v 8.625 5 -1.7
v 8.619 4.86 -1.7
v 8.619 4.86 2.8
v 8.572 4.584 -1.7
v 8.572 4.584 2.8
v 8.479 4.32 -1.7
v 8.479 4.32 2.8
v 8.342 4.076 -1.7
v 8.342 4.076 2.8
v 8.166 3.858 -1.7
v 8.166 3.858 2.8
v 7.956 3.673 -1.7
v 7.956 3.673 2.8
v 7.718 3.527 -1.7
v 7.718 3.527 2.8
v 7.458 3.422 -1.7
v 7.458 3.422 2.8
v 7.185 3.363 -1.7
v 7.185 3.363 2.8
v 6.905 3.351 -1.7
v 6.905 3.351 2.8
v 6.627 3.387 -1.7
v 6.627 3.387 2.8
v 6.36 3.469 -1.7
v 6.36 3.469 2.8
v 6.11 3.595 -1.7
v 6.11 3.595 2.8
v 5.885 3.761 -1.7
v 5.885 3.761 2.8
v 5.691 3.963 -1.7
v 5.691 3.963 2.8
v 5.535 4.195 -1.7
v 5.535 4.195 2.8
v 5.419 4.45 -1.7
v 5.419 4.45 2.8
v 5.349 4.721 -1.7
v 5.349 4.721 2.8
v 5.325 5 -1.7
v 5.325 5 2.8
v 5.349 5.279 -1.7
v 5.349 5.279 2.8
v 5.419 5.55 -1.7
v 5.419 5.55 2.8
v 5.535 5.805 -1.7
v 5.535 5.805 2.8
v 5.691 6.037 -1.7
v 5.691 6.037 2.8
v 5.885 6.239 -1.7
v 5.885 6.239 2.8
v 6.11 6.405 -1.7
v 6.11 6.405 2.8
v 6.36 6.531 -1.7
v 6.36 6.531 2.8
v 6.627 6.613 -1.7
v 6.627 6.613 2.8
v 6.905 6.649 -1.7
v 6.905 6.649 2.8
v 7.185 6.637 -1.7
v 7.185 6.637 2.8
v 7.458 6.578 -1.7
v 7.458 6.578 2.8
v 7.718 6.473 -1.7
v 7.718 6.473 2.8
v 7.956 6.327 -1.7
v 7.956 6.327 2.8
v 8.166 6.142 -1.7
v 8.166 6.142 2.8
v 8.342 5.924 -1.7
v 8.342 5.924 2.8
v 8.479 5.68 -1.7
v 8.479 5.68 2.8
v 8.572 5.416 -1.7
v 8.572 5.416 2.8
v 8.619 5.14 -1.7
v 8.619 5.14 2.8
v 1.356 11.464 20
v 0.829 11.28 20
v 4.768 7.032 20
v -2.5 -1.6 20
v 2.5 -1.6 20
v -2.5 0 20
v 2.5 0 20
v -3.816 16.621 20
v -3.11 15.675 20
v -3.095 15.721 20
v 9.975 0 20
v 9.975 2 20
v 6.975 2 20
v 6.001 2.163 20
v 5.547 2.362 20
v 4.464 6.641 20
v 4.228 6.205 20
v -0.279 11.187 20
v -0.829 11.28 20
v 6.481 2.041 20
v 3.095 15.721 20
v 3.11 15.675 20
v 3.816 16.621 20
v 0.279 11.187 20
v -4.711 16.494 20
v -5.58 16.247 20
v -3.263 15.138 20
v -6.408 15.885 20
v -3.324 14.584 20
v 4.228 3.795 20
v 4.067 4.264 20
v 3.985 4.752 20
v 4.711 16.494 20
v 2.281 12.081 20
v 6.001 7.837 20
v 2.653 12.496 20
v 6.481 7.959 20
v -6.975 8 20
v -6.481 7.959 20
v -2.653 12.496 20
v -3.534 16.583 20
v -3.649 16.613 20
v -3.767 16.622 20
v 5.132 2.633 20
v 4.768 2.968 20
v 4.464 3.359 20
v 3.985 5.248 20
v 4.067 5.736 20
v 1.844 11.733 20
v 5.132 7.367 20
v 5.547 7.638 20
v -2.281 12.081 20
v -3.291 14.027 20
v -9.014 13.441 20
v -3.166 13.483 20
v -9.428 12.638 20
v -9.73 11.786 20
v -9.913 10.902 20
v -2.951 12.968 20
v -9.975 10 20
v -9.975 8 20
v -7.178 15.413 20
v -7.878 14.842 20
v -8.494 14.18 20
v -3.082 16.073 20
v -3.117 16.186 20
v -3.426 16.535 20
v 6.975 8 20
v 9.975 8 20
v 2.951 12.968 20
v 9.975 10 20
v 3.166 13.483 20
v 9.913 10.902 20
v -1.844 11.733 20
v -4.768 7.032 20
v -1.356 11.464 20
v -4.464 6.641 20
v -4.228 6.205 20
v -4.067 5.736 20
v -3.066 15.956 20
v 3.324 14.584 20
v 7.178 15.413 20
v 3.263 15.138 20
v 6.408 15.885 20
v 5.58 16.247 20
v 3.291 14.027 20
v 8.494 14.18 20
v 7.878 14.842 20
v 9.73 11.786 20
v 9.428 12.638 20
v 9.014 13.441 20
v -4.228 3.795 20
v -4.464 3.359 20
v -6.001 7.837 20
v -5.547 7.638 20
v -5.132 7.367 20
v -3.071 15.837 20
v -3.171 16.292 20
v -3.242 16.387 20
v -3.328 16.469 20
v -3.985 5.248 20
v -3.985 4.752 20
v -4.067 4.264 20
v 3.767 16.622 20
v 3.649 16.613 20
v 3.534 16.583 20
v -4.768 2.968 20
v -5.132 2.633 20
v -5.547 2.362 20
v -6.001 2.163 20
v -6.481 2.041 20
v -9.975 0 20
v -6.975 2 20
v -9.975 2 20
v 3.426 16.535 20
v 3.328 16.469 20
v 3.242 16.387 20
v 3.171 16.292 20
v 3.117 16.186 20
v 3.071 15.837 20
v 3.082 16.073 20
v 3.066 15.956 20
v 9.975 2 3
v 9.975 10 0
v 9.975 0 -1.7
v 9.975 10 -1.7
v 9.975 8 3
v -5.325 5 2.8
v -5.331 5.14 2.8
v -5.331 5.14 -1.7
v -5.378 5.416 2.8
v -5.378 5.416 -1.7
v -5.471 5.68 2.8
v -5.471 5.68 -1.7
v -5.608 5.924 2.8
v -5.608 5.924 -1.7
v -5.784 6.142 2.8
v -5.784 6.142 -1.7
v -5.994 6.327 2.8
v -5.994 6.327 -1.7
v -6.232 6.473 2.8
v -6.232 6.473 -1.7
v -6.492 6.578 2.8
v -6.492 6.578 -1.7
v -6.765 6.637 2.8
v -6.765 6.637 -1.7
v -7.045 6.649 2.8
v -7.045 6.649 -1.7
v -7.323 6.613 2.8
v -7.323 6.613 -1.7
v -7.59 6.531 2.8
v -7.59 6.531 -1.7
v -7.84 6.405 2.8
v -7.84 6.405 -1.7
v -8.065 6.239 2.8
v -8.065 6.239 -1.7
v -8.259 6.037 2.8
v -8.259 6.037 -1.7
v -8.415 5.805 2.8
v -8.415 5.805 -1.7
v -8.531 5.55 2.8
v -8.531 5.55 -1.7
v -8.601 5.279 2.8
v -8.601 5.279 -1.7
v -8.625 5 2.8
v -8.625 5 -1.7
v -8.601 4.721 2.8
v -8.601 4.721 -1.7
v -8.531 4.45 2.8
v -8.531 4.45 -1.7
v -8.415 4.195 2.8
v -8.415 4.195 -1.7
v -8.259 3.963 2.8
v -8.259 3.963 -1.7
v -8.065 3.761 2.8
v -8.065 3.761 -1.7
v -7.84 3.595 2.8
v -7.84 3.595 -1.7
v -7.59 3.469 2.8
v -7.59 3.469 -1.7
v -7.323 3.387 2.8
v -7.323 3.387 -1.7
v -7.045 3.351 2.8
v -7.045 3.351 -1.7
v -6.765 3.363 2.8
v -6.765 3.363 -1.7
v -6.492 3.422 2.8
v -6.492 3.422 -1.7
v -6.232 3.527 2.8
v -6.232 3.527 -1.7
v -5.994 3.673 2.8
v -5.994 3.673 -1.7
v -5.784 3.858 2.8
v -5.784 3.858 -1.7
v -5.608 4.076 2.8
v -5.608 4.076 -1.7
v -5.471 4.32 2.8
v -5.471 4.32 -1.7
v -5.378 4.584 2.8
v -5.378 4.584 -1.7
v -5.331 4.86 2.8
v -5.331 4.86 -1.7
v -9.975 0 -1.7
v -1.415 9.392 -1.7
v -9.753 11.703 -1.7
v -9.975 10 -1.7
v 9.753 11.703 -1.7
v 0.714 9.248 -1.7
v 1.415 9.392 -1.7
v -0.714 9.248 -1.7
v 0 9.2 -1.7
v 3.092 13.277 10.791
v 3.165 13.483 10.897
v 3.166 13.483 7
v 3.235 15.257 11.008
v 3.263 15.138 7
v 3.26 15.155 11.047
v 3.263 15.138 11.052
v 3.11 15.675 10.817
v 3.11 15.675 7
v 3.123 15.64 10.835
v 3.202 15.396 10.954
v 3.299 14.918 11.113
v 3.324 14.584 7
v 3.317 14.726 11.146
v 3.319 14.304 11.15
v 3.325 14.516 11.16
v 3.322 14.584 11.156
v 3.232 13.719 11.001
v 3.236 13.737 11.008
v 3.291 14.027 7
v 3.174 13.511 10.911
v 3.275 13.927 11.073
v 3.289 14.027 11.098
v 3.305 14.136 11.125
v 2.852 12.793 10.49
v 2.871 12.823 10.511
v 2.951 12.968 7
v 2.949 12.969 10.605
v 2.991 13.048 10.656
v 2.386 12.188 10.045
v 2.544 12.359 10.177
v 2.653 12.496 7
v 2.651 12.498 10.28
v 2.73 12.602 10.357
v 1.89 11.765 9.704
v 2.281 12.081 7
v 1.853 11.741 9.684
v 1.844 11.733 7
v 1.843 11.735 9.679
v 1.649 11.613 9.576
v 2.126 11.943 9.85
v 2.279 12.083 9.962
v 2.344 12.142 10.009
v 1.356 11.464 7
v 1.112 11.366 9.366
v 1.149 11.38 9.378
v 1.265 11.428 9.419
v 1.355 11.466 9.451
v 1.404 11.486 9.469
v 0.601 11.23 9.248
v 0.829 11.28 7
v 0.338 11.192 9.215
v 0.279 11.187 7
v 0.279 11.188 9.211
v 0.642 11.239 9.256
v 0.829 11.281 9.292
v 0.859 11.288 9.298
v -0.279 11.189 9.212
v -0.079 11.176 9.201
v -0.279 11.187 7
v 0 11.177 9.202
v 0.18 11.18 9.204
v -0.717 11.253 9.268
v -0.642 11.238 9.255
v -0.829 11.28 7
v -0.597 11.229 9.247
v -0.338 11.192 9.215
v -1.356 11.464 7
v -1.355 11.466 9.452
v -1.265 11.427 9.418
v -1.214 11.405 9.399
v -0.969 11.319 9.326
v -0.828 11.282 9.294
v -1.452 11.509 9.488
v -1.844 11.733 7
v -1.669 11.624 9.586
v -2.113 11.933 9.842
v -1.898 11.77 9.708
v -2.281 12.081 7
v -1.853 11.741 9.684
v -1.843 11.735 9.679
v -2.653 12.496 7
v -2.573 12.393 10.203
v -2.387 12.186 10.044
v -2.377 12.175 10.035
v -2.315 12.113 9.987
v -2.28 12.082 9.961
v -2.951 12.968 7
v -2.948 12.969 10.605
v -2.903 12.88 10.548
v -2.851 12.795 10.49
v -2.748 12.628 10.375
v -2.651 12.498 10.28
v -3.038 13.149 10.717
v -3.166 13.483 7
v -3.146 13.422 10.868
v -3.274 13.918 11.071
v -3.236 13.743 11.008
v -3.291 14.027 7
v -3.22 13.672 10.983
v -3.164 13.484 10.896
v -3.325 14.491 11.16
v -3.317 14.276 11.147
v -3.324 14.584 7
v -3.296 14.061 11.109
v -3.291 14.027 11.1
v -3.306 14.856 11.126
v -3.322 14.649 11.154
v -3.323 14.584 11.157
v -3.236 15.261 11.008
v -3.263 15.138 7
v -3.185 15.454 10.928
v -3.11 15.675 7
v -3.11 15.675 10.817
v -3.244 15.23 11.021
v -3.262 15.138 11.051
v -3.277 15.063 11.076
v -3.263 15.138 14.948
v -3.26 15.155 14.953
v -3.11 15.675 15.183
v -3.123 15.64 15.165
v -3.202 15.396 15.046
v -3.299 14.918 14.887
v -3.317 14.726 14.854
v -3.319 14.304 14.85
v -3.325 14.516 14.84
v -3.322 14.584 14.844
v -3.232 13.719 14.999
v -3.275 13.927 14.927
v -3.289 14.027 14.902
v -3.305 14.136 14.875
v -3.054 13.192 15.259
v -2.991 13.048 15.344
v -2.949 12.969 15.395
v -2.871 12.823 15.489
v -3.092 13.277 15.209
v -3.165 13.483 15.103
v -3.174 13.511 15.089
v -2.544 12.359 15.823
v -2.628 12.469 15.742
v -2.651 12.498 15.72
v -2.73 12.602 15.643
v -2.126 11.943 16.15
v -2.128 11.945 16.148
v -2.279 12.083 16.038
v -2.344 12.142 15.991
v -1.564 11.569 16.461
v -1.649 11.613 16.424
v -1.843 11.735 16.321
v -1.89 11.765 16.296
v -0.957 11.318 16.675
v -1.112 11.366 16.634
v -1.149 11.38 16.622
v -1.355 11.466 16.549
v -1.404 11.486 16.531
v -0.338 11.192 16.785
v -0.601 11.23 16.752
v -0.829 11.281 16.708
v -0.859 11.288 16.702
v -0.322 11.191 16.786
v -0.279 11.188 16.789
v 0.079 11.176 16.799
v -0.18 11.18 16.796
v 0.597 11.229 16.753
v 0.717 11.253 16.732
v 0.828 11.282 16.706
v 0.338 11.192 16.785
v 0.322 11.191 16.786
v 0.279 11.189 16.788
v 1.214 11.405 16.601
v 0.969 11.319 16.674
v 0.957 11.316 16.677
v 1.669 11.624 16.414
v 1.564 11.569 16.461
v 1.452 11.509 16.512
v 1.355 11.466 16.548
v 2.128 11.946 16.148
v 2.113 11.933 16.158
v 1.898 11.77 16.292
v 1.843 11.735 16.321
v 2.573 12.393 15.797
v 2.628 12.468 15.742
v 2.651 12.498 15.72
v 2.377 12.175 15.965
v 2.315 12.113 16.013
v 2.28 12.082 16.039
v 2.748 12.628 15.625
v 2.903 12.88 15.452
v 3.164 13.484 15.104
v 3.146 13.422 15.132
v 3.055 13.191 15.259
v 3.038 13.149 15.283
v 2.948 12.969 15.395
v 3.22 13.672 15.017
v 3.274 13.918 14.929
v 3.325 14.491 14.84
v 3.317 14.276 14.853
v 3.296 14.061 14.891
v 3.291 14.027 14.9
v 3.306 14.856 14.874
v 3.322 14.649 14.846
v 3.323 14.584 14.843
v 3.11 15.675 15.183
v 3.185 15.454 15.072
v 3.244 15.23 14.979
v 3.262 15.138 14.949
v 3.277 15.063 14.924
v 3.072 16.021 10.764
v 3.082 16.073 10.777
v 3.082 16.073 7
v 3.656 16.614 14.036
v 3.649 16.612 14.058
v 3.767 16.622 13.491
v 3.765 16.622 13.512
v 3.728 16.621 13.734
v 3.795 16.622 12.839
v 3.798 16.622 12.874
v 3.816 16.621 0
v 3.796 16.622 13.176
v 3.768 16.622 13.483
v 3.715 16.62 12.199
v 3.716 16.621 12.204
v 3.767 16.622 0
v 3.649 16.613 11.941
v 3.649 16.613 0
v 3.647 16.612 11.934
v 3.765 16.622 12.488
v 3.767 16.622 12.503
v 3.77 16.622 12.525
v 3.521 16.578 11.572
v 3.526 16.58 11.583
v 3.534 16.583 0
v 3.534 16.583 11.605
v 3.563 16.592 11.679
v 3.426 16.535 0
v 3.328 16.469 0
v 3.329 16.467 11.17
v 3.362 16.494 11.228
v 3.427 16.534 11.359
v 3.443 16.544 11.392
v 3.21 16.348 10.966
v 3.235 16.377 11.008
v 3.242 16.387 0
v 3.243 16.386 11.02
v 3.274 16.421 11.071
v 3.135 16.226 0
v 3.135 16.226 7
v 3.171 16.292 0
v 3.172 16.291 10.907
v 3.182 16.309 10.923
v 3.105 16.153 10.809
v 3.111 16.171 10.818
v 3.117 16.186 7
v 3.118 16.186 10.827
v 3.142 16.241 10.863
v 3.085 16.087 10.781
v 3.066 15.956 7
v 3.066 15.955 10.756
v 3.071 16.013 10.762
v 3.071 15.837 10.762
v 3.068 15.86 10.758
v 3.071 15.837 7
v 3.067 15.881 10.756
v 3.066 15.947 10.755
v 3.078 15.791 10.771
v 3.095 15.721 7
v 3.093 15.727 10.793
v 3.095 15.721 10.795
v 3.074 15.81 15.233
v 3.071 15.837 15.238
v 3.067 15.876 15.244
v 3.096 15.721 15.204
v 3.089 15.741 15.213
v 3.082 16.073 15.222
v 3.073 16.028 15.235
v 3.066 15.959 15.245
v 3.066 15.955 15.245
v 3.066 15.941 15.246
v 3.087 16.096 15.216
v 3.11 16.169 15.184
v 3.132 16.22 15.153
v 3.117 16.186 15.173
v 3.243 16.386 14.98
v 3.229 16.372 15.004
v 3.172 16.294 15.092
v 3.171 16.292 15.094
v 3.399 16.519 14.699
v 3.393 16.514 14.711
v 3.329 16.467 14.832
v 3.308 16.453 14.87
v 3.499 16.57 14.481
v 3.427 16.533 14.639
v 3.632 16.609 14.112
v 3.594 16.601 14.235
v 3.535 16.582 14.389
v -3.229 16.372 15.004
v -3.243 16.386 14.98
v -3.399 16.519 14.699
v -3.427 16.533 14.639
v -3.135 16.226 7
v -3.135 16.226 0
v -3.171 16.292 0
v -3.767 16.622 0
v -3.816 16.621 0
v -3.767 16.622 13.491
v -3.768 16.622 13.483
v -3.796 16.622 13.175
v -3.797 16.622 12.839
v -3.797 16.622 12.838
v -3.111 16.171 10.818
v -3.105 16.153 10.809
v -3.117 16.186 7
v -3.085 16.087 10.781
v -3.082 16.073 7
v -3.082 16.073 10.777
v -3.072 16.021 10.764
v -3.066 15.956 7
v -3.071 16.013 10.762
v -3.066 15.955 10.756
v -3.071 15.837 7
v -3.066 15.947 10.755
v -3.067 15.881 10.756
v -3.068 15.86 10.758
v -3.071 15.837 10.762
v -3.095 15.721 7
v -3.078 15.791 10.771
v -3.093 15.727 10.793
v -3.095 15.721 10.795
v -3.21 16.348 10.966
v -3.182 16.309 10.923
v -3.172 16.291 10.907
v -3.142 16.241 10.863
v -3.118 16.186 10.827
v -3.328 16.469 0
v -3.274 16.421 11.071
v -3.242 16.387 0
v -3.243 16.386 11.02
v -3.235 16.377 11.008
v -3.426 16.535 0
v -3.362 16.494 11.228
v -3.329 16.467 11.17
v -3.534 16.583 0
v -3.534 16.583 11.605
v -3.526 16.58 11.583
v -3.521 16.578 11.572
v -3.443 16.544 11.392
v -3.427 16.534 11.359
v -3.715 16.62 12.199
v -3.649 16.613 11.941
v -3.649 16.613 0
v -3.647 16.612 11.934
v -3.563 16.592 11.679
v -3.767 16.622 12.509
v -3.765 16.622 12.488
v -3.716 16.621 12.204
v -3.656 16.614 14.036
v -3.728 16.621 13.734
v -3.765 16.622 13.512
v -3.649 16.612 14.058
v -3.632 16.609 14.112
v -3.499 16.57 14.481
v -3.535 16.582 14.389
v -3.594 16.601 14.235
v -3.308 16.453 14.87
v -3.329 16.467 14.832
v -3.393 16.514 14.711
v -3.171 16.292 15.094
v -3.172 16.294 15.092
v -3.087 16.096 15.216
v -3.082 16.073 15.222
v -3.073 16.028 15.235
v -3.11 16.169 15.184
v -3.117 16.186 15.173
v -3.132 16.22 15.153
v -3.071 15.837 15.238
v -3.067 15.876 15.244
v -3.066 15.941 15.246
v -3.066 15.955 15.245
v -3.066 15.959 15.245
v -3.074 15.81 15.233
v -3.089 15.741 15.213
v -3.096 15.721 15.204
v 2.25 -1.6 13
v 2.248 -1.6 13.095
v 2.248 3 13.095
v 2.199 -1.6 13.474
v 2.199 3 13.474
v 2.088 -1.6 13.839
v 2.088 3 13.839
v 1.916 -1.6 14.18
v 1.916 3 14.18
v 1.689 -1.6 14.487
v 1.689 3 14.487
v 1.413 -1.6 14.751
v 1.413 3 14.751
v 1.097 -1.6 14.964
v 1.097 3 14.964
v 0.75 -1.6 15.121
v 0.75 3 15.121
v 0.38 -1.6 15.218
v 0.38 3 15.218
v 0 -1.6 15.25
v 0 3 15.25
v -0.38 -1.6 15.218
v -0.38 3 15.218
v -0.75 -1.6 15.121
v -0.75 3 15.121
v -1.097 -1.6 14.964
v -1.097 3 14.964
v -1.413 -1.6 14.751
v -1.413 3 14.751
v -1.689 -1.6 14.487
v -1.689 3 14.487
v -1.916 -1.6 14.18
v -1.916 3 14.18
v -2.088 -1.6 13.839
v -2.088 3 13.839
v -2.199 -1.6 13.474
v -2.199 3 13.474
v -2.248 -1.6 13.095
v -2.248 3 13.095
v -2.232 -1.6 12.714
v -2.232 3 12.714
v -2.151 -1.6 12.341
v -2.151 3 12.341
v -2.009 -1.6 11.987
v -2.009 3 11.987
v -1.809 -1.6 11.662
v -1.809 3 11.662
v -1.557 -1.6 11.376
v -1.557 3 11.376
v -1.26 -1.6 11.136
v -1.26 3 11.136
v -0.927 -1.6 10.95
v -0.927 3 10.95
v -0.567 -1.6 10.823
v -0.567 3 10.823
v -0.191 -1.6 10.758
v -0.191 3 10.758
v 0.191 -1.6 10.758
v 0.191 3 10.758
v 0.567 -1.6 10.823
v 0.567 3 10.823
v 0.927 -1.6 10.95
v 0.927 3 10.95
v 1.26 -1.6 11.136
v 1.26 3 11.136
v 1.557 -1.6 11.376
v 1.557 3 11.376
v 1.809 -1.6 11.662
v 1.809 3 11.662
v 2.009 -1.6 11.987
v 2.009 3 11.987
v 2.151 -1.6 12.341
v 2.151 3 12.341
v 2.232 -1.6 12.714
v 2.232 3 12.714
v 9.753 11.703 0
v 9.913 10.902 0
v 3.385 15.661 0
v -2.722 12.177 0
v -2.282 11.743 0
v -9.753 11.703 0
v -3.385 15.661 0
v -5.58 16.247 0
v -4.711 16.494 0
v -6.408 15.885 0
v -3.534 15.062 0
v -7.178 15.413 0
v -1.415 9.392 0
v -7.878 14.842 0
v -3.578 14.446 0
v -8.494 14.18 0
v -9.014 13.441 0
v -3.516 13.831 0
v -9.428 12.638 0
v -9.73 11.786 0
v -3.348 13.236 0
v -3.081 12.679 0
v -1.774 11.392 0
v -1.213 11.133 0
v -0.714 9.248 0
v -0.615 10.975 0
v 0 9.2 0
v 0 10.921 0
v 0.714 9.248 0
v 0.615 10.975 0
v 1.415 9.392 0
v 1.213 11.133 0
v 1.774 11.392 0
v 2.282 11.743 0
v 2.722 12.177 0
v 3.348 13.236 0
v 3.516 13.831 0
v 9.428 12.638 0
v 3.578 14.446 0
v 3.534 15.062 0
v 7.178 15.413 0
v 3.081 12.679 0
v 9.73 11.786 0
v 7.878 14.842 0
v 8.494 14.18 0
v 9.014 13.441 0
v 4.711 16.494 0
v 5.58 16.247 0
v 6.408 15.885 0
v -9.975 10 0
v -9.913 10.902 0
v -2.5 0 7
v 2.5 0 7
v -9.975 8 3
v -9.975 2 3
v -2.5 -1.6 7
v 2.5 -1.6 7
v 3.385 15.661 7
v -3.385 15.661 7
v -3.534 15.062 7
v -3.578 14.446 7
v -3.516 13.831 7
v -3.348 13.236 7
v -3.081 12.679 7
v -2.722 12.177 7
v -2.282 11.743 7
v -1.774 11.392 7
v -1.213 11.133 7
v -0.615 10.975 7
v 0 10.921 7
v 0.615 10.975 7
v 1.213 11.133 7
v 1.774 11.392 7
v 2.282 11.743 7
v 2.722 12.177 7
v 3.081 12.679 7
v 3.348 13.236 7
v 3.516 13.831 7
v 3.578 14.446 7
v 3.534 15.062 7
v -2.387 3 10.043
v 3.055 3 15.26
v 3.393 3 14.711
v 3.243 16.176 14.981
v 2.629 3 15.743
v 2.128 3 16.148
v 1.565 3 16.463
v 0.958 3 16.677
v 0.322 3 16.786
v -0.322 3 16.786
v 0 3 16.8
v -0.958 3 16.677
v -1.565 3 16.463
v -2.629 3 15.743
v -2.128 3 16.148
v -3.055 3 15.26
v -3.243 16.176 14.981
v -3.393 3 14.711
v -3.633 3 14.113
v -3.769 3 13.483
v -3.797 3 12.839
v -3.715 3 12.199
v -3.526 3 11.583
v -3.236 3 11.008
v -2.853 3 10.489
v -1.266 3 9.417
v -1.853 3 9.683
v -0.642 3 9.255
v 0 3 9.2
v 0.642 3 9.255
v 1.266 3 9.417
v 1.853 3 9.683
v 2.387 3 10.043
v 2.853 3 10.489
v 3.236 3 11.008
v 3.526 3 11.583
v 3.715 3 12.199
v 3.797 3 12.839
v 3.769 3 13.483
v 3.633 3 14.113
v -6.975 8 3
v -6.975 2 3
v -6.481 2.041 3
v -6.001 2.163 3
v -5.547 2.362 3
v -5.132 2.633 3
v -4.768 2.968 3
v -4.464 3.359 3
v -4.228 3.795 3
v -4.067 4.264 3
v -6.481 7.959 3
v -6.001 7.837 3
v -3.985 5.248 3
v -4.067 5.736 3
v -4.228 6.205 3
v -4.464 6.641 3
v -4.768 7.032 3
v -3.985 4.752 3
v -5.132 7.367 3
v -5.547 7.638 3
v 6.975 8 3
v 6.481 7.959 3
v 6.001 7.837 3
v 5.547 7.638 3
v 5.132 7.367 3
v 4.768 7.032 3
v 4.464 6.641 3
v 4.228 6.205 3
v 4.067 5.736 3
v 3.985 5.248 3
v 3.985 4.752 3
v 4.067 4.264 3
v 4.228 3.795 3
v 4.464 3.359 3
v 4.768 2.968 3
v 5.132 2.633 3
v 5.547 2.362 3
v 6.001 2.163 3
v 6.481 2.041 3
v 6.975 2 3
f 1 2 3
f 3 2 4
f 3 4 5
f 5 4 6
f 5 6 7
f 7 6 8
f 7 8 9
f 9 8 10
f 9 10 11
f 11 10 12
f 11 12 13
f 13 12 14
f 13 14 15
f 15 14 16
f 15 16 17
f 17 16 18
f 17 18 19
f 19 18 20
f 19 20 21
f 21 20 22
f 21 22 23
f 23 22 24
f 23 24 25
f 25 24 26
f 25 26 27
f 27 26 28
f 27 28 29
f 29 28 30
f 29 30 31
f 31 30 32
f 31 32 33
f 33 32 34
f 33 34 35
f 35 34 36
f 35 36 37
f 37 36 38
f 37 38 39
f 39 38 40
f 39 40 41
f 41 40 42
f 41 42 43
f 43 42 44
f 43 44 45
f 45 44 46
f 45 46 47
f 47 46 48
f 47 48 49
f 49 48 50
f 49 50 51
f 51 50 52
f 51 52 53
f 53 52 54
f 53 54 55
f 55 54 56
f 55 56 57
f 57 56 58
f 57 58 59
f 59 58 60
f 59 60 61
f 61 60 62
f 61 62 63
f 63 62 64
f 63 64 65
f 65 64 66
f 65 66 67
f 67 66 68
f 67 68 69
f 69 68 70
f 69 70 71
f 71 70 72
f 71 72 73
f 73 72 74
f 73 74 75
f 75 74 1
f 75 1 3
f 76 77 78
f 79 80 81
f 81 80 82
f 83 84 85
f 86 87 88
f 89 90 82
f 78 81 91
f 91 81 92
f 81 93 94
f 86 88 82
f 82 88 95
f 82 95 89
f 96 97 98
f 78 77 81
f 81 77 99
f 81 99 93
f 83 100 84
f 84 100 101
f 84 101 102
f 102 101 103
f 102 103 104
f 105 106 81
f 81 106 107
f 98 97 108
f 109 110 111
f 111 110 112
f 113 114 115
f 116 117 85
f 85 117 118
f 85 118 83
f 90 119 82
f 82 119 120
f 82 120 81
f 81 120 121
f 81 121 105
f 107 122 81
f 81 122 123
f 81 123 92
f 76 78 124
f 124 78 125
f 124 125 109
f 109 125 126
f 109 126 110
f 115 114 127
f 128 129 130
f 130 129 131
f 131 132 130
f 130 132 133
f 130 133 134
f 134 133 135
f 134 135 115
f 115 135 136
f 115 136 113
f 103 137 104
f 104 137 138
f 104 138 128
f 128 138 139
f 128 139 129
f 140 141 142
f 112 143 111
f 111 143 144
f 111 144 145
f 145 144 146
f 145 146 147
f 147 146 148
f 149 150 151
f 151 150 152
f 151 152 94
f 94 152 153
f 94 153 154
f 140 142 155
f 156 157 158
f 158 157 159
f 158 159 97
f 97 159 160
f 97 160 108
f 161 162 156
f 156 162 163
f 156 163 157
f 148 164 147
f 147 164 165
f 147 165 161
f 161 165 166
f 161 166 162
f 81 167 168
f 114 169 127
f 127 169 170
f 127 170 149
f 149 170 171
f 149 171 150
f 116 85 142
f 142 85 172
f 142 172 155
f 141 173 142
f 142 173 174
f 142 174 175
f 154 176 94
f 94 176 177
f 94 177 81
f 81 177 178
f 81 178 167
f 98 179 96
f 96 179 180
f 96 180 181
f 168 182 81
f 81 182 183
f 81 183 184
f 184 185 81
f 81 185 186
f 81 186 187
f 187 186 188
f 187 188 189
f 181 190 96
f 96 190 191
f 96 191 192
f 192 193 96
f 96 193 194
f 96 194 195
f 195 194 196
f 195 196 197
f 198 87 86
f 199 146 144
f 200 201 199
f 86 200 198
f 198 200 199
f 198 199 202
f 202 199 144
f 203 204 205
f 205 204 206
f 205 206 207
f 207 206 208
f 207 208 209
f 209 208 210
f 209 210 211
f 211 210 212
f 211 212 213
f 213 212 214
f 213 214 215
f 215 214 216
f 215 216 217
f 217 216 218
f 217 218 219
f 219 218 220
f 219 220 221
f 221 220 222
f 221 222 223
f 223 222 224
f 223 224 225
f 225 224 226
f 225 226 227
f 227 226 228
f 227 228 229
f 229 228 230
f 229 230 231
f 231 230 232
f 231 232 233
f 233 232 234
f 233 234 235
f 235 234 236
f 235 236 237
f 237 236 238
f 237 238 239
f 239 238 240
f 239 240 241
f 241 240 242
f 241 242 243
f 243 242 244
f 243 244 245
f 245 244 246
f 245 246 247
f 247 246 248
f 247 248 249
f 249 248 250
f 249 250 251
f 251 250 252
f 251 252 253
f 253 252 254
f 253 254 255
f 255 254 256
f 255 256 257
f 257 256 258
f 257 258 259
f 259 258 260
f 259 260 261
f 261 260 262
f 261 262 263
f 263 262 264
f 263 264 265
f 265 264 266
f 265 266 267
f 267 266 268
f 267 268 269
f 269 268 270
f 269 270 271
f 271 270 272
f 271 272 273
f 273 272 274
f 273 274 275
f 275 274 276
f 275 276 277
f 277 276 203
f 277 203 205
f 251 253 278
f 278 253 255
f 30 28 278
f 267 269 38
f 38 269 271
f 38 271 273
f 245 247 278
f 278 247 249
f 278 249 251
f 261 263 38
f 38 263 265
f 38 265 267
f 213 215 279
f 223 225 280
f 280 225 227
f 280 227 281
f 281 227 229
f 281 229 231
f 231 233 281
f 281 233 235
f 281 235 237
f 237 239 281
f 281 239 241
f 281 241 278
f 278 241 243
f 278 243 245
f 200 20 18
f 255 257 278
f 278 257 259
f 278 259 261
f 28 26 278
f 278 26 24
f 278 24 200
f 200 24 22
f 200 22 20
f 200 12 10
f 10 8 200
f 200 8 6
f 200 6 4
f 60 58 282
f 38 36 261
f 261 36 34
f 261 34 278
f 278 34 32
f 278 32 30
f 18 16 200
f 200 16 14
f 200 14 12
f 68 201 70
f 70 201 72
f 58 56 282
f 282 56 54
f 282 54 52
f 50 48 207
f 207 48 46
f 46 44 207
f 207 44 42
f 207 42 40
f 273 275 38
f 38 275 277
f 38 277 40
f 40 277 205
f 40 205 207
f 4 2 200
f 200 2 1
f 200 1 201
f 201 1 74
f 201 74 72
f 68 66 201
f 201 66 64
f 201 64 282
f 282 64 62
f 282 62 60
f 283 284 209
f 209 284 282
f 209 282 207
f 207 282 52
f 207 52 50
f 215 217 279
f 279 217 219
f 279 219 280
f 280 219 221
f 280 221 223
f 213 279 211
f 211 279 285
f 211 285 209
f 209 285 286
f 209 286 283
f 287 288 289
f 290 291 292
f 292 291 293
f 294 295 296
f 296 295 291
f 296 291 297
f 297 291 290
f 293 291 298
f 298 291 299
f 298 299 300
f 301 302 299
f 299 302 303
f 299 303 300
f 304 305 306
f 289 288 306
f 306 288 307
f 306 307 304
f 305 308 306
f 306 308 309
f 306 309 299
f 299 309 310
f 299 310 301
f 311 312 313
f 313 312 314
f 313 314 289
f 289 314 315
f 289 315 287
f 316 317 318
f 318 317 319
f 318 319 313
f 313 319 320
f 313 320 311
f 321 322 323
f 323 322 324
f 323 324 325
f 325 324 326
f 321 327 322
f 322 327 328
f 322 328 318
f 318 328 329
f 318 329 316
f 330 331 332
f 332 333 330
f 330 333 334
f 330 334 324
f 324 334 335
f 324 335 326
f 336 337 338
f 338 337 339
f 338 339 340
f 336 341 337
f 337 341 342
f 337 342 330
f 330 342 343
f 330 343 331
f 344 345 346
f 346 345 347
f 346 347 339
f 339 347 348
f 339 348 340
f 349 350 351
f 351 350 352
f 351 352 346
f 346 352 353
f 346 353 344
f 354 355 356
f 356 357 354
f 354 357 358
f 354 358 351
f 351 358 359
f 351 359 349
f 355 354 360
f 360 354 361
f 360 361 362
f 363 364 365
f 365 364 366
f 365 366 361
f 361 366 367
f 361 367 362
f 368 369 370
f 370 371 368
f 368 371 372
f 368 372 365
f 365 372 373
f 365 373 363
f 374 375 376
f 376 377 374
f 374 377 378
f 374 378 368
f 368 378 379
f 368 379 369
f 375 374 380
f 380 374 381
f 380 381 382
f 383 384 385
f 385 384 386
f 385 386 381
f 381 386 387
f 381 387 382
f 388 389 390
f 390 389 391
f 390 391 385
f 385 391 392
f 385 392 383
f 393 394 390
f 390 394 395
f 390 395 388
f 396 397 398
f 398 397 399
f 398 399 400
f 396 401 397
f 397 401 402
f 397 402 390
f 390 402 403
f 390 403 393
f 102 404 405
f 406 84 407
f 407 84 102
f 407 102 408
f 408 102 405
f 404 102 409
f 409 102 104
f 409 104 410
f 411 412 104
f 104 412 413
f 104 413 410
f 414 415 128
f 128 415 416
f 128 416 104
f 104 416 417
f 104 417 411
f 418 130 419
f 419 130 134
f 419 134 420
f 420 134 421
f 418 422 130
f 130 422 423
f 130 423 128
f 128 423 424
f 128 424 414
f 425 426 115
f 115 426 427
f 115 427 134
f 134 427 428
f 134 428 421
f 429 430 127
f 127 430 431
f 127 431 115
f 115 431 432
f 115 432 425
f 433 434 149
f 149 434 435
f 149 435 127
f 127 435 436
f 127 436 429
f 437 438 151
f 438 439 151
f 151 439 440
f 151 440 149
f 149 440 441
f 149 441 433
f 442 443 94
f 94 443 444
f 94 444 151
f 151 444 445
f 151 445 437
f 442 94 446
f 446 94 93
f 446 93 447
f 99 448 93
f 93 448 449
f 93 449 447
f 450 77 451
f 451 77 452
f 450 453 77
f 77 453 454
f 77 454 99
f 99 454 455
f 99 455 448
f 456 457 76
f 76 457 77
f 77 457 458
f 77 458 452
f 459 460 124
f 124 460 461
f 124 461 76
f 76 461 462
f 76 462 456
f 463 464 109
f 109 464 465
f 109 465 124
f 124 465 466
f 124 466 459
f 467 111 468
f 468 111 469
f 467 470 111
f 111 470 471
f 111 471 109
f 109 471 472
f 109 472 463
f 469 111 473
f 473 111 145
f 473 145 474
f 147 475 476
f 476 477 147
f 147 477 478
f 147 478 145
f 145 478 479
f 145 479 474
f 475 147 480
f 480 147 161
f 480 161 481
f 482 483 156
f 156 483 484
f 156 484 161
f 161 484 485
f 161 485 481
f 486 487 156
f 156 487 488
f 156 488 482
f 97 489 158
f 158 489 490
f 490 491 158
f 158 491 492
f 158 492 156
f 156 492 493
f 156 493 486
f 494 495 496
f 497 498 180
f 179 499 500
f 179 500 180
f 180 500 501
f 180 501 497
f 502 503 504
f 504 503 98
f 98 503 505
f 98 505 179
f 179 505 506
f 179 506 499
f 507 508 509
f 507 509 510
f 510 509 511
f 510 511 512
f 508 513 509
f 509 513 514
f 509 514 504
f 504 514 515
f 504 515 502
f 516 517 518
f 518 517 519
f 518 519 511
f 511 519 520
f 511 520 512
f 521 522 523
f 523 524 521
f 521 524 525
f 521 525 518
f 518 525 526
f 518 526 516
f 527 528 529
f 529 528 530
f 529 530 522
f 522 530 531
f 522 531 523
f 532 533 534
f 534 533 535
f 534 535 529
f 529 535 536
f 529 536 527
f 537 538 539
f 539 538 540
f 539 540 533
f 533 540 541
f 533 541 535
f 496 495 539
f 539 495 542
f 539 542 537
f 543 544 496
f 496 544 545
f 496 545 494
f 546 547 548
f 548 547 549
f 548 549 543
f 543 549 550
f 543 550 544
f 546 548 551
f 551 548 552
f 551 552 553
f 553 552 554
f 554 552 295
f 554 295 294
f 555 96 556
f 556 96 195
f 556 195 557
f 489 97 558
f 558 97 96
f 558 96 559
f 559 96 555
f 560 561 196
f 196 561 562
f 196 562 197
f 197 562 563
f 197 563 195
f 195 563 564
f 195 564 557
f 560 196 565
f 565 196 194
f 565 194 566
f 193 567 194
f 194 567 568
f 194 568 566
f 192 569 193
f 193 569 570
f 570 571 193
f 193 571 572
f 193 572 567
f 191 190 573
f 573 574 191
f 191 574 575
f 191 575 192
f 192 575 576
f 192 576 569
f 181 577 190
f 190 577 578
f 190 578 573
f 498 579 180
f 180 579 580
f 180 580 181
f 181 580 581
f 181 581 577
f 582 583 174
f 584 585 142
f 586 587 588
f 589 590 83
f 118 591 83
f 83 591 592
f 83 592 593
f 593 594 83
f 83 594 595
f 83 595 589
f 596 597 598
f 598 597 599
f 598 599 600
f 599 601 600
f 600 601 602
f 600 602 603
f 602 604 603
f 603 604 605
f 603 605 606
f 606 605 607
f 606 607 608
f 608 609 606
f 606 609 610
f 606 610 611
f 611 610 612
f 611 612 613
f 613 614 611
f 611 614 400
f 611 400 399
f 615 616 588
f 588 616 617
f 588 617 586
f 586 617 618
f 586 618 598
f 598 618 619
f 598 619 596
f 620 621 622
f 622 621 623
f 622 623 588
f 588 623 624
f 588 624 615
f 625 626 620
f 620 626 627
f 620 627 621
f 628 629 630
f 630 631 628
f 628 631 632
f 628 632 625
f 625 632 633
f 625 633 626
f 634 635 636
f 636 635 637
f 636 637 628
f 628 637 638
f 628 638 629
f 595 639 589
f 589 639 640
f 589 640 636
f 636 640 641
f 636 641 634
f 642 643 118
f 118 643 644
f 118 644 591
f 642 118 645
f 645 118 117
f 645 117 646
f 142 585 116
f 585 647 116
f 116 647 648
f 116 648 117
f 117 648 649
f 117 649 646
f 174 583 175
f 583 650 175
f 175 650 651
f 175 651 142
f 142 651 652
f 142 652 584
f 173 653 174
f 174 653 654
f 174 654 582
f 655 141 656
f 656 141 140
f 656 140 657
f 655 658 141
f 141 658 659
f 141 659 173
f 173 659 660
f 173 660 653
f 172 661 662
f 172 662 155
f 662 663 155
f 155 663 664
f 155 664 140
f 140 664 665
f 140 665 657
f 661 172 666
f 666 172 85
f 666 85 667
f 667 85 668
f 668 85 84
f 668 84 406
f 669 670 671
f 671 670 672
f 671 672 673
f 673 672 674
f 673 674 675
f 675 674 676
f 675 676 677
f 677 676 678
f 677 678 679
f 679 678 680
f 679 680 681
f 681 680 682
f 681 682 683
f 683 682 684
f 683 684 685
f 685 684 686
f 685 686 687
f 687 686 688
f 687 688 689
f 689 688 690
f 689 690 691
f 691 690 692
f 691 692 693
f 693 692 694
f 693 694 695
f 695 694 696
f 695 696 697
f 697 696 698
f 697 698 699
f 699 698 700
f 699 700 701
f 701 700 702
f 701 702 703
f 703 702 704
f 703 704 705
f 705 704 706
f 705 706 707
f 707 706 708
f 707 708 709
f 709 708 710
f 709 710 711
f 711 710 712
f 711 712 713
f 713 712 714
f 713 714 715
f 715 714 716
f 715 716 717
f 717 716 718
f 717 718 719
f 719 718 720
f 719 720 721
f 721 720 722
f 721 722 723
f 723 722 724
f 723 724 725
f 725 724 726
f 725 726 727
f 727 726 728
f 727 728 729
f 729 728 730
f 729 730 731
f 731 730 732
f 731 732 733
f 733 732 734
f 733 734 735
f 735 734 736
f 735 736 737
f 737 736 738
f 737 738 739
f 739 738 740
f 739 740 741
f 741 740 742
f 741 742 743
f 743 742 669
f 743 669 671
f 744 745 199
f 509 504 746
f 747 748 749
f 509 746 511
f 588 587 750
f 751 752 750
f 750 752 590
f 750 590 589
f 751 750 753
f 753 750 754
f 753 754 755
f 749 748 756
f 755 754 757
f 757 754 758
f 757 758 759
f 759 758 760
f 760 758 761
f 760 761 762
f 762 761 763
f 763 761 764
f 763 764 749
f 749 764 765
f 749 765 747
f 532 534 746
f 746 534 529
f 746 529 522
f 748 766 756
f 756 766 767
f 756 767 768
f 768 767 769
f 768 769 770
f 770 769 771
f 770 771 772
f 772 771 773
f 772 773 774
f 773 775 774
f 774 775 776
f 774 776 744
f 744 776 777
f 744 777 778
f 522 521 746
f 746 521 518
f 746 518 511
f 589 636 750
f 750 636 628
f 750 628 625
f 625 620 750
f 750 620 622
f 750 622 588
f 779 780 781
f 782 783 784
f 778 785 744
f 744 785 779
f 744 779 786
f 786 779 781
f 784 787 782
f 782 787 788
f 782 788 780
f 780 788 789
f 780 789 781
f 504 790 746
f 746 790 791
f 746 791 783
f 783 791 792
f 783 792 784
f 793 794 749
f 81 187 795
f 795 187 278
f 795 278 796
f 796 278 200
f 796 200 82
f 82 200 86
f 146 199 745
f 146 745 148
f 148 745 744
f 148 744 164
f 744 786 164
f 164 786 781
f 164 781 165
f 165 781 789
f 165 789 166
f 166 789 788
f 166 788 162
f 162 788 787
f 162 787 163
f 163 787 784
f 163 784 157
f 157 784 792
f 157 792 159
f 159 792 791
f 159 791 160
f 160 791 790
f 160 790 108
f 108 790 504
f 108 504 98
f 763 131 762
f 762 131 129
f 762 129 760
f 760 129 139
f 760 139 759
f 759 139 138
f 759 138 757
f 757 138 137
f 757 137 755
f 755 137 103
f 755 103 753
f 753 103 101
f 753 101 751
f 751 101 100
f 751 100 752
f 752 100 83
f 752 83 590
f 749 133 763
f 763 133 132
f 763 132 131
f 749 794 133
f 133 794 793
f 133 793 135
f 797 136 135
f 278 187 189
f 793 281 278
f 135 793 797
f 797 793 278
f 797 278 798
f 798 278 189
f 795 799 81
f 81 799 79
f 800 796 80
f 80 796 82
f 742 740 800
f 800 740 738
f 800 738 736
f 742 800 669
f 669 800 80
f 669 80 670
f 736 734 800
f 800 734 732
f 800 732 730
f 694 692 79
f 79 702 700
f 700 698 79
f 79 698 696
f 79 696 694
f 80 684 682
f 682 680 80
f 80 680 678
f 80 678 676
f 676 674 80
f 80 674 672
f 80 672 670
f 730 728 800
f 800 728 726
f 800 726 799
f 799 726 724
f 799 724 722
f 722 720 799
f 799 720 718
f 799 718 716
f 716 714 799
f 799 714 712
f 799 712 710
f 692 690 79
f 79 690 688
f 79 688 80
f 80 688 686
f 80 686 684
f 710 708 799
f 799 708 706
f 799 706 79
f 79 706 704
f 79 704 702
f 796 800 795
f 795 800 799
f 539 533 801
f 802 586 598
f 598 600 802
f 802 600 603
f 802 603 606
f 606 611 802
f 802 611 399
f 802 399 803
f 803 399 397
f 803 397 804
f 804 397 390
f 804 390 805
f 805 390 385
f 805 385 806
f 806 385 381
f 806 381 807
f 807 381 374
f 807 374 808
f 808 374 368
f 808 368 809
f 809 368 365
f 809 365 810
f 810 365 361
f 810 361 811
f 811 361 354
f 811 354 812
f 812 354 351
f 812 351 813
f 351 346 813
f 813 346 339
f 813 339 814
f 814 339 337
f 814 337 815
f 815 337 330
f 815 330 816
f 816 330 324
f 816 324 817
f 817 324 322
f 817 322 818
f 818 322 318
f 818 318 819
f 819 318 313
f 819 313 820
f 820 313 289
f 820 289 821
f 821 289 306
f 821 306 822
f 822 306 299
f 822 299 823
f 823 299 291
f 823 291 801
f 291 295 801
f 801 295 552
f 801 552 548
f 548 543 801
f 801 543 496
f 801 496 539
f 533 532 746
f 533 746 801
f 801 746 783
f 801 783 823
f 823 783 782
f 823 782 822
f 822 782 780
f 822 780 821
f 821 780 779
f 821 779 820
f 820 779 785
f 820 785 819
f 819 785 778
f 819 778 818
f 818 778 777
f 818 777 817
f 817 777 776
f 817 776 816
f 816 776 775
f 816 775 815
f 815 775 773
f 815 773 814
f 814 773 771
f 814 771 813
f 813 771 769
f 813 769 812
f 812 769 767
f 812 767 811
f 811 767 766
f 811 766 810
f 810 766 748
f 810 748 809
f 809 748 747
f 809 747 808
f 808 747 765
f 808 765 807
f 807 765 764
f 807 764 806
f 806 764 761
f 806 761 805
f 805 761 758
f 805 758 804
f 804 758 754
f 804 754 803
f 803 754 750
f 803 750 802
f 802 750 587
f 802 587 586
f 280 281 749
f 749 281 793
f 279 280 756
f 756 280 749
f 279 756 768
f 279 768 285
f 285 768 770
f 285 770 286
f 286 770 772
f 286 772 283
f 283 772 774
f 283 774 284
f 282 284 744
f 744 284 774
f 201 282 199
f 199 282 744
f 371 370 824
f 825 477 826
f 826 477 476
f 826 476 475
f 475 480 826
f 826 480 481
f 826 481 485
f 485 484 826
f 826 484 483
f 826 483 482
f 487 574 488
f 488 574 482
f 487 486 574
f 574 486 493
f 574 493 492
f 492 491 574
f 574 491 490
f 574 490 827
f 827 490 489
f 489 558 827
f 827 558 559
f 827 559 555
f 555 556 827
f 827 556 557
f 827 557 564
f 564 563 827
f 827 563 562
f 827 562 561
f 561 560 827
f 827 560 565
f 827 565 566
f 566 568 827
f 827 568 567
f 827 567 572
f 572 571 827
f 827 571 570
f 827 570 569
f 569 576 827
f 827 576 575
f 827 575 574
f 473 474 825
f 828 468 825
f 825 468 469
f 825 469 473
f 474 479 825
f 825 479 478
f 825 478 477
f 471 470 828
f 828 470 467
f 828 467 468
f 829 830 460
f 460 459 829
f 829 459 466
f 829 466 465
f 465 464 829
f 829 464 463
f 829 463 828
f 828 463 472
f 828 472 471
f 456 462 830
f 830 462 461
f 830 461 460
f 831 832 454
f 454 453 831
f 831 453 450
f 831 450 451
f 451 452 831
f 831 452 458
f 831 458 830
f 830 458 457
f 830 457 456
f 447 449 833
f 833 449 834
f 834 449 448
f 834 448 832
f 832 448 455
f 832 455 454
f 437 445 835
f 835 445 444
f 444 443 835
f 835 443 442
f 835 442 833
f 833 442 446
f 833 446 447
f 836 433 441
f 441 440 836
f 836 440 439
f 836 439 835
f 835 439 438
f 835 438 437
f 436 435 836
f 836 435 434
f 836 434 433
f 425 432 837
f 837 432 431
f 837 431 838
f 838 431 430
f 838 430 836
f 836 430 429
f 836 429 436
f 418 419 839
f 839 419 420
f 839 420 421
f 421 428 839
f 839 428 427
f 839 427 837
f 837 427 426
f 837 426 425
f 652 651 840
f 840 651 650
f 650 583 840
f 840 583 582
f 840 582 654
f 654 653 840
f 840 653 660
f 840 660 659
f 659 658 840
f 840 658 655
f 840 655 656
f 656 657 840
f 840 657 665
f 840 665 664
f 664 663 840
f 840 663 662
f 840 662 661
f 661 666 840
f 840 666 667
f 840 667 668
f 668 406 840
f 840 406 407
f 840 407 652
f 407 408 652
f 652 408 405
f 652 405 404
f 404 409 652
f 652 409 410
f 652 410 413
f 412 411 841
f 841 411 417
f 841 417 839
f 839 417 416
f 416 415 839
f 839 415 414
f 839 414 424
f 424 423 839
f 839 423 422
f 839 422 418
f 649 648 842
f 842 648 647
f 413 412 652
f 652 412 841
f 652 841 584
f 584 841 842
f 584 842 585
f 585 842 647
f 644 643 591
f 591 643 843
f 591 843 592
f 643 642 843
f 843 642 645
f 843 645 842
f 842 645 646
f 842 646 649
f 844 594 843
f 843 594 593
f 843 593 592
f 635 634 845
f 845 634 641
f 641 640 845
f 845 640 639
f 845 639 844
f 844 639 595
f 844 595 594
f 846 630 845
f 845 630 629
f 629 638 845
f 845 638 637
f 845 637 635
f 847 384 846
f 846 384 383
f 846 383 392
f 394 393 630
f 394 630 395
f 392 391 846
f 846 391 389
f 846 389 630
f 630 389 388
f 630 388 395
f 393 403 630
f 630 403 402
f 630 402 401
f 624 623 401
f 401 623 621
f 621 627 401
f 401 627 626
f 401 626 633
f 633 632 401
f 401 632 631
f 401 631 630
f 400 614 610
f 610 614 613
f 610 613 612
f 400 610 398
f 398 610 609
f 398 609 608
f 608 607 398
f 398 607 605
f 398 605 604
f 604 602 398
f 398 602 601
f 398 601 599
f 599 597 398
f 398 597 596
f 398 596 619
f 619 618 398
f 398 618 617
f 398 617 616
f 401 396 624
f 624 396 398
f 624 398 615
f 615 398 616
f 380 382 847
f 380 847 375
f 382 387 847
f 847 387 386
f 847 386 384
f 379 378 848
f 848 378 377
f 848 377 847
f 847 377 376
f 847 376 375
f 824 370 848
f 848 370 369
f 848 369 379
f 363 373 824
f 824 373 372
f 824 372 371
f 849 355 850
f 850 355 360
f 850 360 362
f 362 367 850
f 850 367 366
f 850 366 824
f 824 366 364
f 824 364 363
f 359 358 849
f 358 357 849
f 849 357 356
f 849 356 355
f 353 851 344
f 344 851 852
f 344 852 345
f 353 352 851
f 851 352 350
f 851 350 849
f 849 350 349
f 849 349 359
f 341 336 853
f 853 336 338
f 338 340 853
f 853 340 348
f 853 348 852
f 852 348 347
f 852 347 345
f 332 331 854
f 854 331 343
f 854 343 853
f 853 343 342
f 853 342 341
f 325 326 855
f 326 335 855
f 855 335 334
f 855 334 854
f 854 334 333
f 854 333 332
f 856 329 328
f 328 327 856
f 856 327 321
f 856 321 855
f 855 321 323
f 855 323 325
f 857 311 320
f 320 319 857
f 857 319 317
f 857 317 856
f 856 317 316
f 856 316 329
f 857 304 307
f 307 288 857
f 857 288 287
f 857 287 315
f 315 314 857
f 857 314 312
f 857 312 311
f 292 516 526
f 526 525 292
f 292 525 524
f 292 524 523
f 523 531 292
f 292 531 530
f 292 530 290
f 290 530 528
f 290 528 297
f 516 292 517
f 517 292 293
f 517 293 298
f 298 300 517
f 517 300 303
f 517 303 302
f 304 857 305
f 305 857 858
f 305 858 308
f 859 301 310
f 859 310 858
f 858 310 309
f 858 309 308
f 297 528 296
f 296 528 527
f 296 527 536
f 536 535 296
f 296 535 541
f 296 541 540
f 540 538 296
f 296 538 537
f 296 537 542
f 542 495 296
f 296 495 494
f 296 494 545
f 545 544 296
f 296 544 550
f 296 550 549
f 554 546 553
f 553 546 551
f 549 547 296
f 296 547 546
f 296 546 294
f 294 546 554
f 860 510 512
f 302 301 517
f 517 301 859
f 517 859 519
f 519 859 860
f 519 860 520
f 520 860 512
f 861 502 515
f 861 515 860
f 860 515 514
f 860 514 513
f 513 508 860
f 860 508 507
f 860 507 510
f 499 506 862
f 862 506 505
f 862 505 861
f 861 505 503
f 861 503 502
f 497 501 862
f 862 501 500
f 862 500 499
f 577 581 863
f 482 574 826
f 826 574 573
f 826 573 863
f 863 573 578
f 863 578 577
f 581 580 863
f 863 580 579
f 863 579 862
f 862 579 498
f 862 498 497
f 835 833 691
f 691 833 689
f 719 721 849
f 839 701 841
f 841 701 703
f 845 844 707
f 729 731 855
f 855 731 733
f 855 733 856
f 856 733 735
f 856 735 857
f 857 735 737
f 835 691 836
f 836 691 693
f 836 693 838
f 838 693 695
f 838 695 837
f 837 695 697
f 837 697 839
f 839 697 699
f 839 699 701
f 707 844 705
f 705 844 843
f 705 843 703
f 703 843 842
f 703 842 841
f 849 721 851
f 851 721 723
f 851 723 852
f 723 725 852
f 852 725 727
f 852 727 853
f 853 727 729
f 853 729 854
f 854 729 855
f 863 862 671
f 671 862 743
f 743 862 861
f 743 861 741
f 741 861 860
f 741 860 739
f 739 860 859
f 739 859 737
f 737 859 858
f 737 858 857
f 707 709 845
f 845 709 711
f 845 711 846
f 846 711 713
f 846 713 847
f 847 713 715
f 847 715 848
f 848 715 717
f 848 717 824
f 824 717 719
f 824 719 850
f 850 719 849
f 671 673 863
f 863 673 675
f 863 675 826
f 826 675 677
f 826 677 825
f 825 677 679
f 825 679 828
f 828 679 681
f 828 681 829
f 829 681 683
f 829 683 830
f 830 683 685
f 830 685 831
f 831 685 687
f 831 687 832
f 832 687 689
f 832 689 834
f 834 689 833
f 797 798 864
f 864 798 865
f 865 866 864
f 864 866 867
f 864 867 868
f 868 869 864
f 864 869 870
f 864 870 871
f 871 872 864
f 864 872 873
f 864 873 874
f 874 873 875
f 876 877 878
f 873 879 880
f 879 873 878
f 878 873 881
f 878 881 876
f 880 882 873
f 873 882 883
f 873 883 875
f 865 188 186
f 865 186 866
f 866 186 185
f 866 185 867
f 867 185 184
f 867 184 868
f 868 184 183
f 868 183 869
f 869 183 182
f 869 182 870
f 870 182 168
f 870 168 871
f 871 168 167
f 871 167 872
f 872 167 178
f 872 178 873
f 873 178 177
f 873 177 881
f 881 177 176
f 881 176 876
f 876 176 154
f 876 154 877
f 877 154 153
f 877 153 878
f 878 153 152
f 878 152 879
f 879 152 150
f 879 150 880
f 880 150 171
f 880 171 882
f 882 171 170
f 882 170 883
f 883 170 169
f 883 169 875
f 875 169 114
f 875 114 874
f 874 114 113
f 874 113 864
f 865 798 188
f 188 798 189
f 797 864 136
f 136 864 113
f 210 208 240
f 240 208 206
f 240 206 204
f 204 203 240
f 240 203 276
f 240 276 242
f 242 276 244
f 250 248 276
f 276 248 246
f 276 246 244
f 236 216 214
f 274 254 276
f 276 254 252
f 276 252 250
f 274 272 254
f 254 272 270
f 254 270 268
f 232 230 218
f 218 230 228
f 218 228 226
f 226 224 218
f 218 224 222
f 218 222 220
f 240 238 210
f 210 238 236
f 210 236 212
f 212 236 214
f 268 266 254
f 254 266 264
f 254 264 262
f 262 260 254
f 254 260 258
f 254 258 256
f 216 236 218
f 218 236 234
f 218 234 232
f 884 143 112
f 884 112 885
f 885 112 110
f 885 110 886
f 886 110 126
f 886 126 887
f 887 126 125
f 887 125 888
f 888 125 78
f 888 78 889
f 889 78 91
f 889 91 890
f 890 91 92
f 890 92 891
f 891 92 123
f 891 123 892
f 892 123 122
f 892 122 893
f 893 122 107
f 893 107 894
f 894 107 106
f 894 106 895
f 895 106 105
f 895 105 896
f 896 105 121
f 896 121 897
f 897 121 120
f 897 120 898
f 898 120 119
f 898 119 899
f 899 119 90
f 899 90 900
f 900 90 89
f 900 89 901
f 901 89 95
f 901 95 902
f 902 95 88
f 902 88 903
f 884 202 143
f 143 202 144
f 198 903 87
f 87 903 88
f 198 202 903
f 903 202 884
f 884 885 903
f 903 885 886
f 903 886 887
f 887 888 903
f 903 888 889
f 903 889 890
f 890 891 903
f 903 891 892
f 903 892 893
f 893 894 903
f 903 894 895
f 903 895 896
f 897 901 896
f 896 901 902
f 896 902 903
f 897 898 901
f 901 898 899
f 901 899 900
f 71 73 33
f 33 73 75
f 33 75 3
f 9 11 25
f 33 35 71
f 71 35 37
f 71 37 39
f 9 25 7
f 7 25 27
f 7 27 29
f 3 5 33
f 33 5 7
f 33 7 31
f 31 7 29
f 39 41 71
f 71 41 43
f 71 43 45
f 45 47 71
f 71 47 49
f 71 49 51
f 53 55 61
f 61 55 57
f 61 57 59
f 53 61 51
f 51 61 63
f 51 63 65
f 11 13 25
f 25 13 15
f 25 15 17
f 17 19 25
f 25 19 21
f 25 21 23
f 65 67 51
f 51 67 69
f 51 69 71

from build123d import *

# Parameters (mm, degrees)
BOSS_EXTRUDE1_DEPTH = 20
SKETCH2_W           = 5
SKETCH2_H           = 1.6
BOSS_EXTRUDE2_DEPTH = 13
SKETCH3_R           = 3.578569403
CUT_EXTRUDE1_DEPTH  = 7
BOSS_EXTRUDE3_DEPTH = 1.7
CUT_EXTRUDE2_START  = 20
SKETCH6_R           = 2.25
CUT_EXTRUDE2_DEPTH  = 22.6
CUT_EXTRUDE3_START  = 3
SKETCH7_R           = 3.8
CUT_EXTRUDE3_DEPTH  = 14.622368421
SKETCH8_R           = 1.65
CUT_EXTRUDE4_DEPTH  = 40
CUT_EXTRUDE5_DEPTH  = 17
SKETCH10_R          = 1.65
BOSS_EXTRUDE4_DEPTH = 0.2


with BuildPart() as part:
    # Sketch1 → Boss-Extrude1 (new body)
    with BuildSketch(Plane.XY):
        with BuildLine():
            Line((-9.975, 0), (9.975, 0))
            Line((9.975, 0), (9.975, 10))
            ThreePointArc((9.975, 10), (8.197090719, 14.521275434), (3.815771997, 16.620546549))
            ThreePointArc((3.815771997, 16.620546549), (3.204205313, 16.340903263), (3.110466203, 15.675))
            ThreePointArc((3.110466203, 15.675), (0, 11.175), (-3.110466203, 15.675))
            ThreePointArc((-3.110466203, 15.675), (-3.204205313, 16.340903263), (-3.815771997, 16.620546549))
            ThreePointArc((-3.815771997, 16.620546549), (-8.197090719, 14.521275434), (-9.975, 10))
            Line((-9.975, 10), (-9.975, 0))
        make_face()
    extrude(amount=BOSS_EXTRUDE1_DEPTH)

    # Sketch2 → Boss-Extrude2 (add)
    with BuildSketch(Plane.XY.offset(20)):
        with Locations((0, -0.8)):
            Rectangle(SKETCH2_W, SKETCH2_H)
    extrude(amount=-BOSS_EXTRUDE2_DEPTH)

    # Sketch3 → Cut-Extrude1 (cut)
    with BuildSketch(Plane(origin=(0, 0, 0), x_dir=(-1, 0, 0), z_dir=(0, 0, -1))):
        with Locations((0, 14.5)):
            Circle(SKETCH3_R)
    extrude(amount=-CUT_EXTRUDE1_DEPTH, mode=Mode.SUBTRACT)

    # Sketch4 → Boss-Extrude3 (add)
    with BuildSketch(Plane(origin=(0, 0, 0), x_dir=(-1, 0, 0), z_dir=(0, 0, -1))):
        with BuildLine():
            Line((-9.975, 0), (-9.975, 10))
            Line((-9.975, 10), (-9.752890248, 11.702738246))
            Line((-9.752890248, 11.702738246), (-1.415257539, 9.392452047))
            ThreePointArc((-1.415257539, 9.392452047), (0, 9.2), (1.415257539, 9.392452047))
            Line((1.415257539, 9.392452047), (9.752890248, 11.702738246))
            Line((9.752890248, 11.702738246), (9.975, 10))
            Line((9.975, 10), (9.975, 0))
            Line((9.975, 0), (-9.975, 0))
        make_face()
    extrude(amount=BOSS_EXTRUDE3_DEPTH)

    # Sketch6 → Cut-Extrude2 (cut, through all)
    with BuildSketch(Plane(origin=(0, 0, 0), x_dir=(1, 0, 0), z_dir=(0, 1, 0)).offset(CUT_EXTRUDE2_START)):
        with Locations((0, -13)):
            Circle(SKETCH6_R)
    extrude(amount=-CUT_EXTRUDE2_DEPTH, mode=Mode.SUBTRACT)

    # Sketch7 → Cut-Extrude3 (cut, through all)
    with BuildSketch(Plane(origin=(0, 0, 0), x_dir=(1, 0, 0), z_dir=(0, 1, 0)).offset(CUT_EXTRUDE3_START)):
        with Locations((0, -13)):
            Circle(SKETCH7_R)
    extrude(amount=CUT_EXTRUDE3_DEPTH, mode=Mode.SUBTRACT)

    # Sketch8 → Cut-Extrude4 (cut)
    with BuildSketch(Plane(origin=(0, 0, -1.7), x_dir=(-1, 0, 0), z_dir=(0, 0, -1))):
        with Locations((6.975, 5)):
            Circle(SKETCH8_R)
    cut_extrude4 = extrude(amount=-CUT_EXTRUDE4_DEPTH, mode=Mode.SUBTRACT)

    # Mirror1: Cut-Extrude4 across plane
    add(cut_extrude4.mirror(Plane(origin=(0, 0, 0), x_dir=(0, 0, 1), z_dir=(1, 0, 0))), mode=Mode.SUBTRACT)

    # Sketch9 → Cut-Extrude5 (cut)
    with BuildSketch(Plane.XY.offset(20)):
        with BuildLine():
            Line((-6.975, 8), (-9.975, 8))
            Line((-9.975, 8), (-9.975, 2))
            Line((-9.975, 2), (-6.975, 2))
            ThreePointArc((-6.975, 2), (-3.975, 5), (-6.975, 8))
        make_face()
    cut_extrude5 = extrude(amount=-CUT_EXTRUDE5_DEPTH, mode=Mode.SUBTRACT)

    # Sketch10 → Boss-Extrude4 (add)
    with BuildSketch(Plane.XY.offset(3)):
        with Locations((-6.975, 5)):
            Circle(SKETCH10_R)
    boss_extrude4 = extrude(amount=-BOSS_EXTRUDE4_DEPTH)

    # Mirror2: Cut-Extrude5, Boss-Extrude4 across plane
    add(cut_extrude5.mirror(Plane(origin=(0, 0, 0), x_dir=(0, 0, 1), z_dir=(1, 0, 0))), mode=Mode.SUBTRACT)
    add(boss_extrude4.mirror(Plane(origin=(0, 0, 0), x_dir=(0, 0, 1), z_dir=(1, 0, 0))))


solid = part.part
